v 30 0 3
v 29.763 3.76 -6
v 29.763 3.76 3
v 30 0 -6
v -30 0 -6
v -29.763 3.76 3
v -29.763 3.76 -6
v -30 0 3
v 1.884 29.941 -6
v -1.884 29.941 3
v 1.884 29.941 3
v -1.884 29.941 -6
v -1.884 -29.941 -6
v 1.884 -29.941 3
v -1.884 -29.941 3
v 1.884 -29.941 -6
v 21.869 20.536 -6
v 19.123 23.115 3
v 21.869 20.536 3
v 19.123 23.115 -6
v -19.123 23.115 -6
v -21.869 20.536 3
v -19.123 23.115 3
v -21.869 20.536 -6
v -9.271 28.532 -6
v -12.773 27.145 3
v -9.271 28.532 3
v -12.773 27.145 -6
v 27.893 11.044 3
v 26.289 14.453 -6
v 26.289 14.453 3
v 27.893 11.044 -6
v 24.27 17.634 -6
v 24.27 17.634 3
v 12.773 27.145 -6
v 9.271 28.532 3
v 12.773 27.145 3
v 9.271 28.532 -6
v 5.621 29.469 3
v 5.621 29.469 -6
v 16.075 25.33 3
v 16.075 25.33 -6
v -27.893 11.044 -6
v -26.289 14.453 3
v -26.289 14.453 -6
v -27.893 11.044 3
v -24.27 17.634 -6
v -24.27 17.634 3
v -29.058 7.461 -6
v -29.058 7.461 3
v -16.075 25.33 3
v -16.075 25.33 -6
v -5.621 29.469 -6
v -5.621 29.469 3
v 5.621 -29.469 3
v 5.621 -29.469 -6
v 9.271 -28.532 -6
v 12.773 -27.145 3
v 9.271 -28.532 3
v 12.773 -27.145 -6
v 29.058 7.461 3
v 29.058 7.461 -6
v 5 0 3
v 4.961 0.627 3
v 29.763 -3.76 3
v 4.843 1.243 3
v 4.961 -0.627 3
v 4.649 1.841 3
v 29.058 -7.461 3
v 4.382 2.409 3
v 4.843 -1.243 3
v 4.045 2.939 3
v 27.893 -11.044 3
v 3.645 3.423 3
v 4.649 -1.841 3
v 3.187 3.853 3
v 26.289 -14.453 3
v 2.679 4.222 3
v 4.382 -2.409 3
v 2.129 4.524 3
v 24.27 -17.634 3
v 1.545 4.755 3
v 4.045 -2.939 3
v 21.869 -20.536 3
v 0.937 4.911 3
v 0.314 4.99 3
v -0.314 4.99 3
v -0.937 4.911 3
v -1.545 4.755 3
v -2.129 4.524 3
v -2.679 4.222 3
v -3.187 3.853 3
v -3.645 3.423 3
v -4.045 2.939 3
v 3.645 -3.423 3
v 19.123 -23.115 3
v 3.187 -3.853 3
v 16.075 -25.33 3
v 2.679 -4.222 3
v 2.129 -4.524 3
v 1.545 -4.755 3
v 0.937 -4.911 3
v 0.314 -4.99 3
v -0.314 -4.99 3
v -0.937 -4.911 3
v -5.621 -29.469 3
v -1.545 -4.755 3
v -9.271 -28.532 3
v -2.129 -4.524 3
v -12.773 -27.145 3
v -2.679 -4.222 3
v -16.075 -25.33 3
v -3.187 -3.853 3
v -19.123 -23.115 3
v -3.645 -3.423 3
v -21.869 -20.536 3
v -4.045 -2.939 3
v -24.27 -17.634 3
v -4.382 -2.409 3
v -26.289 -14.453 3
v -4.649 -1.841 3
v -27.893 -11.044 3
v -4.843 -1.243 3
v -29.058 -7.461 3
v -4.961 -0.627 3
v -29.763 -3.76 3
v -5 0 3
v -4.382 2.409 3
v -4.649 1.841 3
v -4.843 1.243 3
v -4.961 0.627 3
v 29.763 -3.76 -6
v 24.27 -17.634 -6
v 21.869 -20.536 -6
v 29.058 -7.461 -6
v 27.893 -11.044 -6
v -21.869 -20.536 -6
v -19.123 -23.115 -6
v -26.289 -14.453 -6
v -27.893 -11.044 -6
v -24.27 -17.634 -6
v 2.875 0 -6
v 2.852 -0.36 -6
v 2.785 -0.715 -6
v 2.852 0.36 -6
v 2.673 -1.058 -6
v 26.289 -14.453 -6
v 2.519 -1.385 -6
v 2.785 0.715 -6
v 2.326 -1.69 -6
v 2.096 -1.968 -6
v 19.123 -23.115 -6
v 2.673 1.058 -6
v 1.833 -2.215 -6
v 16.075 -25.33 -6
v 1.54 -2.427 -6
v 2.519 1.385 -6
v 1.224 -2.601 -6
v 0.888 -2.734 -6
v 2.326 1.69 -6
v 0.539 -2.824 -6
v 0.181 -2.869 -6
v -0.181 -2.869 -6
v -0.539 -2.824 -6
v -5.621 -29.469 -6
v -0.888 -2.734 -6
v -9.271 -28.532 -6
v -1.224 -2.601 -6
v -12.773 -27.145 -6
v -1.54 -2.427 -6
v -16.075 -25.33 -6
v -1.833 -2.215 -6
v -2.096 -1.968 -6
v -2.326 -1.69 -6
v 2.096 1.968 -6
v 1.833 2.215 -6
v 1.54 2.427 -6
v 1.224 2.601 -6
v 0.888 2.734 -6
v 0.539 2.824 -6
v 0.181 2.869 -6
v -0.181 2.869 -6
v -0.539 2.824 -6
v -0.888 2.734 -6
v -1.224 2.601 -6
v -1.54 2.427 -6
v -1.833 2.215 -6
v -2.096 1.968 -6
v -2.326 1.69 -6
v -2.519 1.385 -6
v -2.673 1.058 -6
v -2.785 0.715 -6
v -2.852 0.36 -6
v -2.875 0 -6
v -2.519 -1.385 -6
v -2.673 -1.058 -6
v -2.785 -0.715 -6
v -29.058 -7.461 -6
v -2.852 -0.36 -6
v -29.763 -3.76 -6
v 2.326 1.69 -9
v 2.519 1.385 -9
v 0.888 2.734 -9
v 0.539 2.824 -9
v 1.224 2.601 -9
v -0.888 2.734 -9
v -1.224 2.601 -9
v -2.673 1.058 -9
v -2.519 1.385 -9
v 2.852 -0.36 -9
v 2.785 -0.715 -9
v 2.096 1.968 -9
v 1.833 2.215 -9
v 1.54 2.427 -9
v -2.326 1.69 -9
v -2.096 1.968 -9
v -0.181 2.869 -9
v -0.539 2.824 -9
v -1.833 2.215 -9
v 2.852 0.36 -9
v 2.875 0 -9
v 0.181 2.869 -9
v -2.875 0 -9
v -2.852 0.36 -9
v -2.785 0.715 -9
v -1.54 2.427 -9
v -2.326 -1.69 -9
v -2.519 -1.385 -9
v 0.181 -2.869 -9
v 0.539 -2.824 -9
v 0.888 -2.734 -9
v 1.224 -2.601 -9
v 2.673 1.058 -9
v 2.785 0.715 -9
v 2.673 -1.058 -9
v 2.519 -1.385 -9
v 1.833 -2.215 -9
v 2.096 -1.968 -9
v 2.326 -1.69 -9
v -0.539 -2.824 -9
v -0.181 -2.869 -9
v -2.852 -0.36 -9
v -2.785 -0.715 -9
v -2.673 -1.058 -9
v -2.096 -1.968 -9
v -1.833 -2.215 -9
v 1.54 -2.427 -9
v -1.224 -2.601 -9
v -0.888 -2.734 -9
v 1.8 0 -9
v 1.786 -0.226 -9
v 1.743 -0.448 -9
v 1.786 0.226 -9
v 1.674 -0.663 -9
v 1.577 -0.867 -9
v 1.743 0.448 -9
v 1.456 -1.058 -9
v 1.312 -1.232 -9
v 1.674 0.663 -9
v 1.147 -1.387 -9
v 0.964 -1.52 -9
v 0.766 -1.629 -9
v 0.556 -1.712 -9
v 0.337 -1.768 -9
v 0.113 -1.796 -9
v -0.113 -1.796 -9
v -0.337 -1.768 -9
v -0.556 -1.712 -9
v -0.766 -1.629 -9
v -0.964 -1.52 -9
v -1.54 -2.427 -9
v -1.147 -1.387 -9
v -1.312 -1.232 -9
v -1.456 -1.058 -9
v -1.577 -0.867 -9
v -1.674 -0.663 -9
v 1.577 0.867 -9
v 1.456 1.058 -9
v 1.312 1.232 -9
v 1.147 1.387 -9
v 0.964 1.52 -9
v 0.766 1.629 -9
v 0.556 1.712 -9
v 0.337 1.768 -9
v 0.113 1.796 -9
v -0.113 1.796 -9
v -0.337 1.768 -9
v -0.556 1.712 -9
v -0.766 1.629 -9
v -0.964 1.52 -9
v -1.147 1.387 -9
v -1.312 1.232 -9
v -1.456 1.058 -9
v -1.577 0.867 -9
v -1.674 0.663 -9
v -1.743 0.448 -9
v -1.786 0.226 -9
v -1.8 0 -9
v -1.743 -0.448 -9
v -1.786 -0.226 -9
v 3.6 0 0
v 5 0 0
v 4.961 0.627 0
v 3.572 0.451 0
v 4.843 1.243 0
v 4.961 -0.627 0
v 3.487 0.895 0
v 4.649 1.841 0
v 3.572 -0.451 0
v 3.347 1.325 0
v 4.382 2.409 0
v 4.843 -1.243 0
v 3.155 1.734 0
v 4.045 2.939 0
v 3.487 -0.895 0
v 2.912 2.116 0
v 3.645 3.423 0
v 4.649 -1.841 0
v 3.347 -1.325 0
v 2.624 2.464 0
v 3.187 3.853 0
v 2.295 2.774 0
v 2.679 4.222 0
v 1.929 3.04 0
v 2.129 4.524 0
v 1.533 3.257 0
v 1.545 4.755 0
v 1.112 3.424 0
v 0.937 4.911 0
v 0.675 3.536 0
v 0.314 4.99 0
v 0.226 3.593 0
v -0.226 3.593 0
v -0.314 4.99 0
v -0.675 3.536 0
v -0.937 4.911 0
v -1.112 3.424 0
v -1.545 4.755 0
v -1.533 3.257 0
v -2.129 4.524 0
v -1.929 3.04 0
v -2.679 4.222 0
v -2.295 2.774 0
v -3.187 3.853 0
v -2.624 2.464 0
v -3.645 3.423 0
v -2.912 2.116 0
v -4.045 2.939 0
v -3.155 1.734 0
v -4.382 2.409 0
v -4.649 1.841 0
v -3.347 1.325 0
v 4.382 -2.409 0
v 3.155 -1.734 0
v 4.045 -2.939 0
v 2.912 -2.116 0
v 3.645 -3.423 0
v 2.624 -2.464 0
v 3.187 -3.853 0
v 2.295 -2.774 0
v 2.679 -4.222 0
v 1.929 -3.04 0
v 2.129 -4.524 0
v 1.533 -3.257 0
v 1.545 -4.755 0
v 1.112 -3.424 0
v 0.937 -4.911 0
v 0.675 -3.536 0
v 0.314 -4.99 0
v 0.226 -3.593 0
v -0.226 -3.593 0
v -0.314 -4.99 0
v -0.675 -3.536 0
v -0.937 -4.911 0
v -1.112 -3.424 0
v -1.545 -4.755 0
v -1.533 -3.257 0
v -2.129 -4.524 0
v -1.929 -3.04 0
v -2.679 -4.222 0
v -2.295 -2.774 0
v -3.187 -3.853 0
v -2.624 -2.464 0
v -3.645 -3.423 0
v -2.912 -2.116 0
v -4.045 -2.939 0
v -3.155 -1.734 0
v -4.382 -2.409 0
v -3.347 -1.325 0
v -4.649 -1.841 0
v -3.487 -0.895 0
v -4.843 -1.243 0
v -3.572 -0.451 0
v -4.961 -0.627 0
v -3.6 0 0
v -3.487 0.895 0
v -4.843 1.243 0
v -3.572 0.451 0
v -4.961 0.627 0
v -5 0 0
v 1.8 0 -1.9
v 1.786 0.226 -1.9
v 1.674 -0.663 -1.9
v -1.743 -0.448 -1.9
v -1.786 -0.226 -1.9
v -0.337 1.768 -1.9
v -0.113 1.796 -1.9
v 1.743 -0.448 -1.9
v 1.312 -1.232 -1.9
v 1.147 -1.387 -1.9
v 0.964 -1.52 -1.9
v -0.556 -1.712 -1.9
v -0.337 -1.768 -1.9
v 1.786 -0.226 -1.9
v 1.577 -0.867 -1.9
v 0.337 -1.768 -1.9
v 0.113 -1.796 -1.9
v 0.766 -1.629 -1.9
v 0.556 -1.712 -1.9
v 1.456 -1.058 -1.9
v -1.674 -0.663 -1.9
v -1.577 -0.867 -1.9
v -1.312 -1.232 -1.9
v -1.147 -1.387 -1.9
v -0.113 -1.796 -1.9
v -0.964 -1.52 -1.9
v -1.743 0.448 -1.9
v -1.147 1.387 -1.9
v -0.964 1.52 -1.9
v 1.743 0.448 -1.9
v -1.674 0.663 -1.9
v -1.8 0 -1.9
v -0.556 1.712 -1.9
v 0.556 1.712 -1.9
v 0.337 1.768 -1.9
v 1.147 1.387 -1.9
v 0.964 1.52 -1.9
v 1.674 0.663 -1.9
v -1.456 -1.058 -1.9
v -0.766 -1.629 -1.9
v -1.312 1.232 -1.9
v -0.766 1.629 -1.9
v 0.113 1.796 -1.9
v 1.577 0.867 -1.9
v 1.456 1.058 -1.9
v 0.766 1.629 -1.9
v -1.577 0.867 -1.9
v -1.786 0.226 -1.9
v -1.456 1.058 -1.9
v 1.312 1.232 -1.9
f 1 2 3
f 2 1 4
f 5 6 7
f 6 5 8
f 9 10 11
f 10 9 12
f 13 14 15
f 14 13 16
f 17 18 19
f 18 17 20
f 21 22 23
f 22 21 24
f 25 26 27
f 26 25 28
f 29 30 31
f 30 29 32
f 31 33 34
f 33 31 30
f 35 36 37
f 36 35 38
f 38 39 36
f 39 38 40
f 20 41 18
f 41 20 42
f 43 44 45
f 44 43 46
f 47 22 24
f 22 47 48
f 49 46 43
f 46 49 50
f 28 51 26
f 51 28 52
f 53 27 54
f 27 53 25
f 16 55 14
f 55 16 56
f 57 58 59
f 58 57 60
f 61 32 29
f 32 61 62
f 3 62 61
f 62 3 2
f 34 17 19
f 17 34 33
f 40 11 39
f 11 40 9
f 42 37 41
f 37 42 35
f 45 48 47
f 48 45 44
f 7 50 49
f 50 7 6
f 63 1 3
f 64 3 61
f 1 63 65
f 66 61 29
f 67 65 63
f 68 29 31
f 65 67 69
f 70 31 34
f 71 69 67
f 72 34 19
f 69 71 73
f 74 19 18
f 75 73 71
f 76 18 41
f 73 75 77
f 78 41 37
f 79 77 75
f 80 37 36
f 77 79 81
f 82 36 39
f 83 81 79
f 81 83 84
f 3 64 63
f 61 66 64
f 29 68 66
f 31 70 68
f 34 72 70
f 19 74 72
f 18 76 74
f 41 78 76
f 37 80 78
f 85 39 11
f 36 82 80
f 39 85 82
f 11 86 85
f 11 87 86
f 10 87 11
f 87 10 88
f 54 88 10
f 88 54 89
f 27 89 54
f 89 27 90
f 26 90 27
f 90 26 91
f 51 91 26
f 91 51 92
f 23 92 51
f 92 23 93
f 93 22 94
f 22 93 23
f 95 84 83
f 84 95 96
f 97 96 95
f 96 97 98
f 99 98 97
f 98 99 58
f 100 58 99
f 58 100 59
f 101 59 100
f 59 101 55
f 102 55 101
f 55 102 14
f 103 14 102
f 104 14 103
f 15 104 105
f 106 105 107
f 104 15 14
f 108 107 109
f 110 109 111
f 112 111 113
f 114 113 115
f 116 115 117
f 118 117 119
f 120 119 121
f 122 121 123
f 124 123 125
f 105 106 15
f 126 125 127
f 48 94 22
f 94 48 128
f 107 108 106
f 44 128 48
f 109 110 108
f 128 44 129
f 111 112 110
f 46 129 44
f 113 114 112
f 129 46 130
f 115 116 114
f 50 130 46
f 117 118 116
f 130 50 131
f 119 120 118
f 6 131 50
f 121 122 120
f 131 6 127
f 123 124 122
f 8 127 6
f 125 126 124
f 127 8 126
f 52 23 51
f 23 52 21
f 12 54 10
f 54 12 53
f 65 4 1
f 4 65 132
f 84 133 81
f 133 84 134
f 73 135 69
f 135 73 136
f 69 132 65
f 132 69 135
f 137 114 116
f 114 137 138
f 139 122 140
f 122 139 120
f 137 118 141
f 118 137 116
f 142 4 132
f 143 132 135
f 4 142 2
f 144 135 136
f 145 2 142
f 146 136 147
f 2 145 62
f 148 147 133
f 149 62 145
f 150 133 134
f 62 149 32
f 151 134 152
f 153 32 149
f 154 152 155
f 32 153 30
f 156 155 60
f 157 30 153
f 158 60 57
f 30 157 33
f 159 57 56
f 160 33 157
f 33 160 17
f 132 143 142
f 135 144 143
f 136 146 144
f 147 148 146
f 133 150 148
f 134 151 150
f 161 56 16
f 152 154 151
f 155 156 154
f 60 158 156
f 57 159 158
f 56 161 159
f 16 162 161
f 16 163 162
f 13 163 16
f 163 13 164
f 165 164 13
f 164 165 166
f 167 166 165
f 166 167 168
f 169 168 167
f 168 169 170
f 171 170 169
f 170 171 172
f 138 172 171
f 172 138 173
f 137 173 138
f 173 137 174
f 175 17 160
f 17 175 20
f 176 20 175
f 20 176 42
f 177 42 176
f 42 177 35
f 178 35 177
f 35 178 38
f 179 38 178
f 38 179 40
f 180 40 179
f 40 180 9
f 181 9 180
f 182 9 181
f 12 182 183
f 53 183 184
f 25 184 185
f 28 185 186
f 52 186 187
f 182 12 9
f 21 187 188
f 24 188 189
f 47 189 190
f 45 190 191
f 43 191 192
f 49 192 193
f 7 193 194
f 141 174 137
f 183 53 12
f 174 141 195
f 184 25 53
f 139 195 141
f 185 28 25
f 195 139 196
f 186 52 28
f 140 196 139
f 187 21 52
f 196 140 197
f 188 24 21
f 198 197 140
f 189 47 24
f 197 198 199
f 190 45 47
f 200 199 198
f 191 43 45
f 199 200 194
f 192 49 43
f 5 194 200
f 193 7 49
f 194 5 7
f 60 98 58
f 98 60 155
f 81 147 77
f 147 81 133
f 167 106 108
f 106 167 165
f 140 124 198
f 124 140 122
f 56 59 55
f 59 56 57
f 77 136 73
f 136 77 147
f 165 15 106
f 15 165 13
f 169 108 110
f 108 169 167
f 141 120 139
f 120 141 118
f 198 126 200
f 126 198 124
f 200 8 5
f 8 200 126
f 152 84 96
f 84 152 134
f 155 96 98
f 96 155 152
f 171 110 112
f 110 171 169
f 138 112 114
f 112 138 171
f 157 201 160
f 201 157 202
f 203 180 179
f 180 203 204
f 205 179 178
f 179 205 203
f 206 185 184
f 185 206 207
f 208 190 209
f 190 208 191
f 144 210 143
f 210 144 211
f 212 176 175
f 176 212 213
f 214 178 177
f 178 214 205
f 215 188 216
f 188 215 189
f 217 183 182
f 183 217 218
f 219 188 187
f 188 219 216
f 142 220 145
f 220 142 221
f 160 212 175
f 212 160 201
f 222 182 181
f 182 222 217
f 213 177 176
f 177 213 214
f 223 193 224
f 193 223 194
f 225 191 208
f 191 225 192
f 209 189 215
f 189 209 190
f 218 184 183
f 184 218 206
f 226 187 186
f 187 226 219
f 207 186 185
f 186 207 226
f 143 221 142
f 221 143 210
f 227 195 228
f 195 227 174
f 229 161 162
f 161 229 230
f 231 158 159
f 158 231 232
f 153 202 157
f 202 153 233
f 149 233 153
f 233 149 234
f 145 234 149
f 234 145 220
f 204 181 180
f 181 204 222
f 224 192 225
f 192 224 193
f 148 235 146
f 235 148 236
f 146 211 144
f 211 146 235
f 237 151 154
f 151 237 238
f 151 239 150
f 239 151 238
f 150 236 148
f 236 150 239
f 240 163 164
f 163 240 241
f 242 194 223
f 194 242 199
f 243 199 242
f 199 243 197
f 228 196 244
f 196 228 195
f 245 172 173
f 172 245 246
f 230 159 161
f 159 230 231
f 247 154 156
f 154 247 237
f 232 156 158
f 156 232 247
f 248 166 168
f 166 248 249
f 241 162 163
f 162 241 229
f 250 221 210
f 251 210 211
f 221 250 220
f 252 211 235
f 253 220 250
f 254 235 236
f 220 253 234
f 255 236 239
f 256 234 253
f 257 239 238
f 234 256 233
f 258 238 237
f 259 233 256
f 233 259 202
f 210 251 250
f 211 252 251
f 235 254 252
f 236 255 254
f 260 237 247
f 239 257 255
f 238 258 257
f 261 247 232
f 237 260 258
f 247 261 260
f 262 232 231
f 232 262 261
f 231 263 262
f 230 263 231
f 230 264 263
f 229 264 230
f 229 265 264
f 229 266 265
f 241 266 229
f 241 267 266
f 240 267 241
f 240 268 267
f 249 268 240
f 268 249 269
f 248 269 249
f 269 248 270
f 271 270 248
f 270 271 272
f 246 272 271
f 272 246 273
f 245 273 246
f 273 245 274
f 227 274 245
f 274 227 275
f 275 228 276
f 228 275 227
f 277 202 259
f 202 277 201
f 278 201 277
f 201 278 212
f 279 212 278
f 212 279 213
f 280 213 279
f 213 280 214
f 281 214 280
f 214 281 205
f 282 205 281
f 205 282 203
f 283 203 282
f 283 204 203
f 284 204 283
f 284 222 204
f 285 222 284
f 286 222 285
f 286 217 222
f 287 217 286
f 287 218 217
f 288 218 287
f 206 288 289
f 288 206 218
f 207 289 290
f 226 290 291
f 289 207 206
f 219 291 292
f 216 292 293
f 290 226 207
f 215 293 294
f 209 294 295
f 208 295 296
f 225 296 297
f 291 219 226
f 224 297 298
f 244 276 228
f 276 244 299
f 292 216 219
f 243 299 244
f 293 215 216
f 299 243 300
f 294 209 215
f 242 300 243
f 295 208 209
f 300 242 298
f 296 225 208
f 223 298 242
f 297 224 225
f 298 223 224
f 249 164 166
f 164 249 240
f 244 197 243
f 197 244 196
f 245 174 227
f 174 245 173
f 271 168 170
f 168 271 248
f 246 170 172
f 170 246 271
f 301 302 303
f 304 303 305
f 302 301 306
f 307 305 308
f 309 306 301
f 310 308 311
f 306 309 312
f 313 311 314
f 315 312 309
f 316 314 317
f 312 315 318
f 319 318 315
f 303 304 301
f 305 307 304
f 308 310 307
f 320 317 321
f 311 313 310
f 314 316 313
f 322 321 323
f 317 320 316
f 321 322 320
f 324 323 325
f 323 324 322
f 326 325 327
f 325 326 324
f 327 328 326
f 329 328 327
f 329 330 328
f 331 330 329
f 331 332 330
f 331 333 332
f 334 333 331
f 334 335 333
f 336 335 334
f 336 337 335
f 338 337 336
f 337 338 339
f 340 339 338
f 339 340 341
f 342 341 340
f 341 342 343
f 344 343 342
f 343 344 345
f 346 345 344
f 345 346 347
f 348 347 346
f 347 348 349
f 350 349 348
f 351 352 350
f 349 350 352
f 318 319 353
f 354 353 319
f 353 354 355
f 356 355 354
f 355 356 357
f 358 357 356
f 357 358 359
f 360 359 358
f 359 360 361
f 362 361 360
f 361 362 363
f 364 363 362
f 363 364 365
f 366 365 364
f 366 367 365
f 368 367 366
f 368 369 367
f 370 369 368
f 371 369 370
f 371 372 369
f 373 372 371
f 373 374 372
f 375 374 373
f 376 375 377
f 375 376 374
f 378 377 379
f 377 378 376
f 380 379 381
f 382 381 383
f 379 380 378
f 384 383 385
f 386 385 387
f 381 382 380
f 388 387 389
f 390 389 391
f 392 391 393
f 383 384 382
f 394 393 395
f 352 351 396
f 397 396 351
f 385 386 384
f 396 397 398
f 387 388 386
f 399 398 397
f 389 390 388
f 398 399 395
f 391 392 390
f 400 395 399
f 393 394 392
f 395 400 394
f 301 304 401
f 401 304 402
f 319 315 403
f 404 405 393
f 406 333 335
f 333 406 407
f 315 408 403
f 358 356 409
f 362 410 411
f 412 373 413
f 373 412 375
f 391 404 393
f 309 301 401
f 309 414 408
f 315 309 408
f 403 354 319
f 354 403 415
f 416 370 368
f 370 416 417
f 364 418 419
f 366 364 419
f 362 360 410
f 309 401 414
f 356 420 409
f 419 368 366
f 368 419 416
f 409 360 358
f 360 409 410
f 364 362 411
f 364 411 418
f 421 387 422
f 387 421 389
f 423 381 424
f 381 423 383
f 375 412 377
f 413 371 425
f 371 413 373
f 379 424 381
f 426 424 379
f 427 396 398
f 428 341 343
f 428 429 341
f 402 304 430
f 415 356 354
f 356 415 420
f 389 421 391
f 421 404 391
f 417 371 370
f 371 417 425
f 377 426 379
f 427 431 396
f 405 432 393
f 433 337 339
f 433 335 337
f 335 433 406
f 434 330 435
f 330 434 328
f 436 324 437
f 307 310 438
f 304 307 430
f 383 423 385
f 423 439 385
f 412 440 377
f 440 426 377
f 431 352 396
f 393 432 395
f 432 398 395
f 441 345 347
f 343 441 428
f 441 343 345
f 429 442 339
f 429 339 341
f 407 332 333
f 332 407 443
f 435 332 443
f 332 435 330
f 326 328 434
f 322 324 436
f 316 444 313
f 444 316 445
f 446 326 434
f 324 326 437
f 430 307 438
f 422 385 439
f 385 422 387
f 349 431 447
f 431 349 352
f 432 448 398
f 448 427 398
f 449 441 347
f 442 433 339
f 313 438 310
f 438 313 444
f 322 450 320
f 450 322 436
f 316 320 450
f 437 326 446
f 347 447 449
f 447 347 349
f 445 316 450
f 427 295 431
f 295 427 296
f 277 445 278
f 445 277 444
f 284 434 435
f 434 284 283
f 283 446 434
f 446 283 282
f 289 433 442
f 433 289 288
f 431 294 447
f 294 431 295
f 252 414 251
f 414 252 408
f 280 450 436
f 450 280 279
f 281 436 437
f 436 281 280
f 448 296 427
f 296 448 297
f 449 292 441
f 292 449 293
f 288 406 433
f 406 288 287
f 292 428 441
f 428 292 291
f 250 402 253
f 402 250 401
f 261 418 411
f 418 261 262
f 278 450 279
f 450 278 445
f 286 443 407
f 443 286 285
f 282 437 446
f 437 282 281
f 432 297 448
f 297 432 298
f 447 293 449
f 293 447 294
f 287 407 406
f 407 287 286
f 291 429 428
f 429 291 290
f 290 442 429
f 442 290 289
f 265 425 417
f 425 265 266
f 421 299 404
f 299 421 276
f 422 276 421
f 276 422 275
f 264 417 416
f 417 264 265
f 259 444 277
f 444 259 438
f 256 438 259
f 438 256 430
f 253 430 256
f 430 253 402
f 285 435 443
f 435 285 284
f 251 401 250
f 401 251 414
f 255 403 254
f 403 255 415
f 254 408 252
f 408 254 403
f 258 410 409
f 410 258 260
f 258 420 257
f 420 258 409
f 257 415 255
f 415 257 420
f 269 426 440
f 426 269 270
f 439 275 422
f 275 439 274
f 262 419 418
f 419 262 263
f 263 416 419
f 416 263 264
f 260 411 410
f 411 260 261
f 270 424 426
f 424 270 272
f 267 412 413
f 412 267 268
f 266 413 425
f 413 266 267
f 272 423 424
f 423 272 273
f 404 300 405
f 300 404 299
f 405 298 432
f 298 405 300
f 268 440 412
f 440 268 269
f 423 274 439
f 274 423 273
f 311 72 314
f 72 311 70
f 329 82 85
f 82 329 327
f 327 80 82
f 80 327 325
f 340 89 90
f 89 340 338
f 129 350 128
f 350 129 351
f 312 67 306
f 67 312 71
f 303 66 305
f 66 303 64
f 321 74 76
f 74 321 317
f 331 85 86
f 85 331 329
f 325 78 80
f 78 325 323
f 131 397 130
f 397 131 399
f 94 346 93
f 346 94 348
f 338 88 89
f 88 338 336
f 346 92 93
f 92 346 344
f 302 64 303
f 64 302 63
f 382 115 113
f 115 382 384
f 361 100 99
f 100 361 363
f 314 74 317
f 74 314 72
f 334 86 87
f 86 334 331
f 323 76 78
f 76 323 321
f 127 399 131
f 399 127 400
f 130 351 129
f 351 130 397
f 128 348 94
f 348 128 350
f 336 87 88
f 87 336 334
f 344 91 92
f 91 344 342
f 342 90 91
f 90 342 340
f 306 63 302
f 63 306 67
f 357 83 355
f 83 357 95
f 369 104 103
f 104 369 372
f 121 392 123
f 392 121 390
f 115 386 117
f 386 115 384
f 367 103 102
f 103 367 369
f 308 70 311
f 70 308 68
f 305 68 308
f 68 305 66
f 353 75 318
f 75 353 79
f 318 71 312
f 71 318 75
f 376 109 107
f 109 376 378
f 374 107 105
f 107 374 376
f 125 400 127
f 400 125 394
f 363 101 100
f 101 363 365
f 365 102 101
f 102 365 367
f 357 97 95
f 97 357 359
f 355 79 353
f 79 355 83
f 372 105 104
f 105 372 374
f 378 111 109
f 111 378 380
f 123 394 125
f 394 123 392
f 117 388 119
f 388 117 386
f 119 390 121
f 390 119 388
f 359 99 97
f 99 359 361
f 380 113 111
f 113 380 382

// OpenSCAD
$fn = 50;


difference() {
	union() {
		translate(v = [0, 0, -6.0000000000]) {
			cylinder(h = 9, r = 30.0000000000);
		}
		#translate(v = [0, 0, -9.0000000000]) {
			cylinder(h = 9, r = 2.8750000000);
		}
	}
	union() {
		translate(v = [0, 0, 0]) {
			rotate(a = [0, 0, 0]) {
				difference() {
					union() {
						translate(v = [0, 0, -9.0000000000]) {
							cylinder(h = 9, r = 1.5000000000);
						}
						translate(v = [0, 0, -1.9000000000]) {
							cylinder(h = 1.9000000000, r1 = 1.8000000000, r2 = 3.6000000000);
						}
						translate(v = [0, 0, -9.0000000000]) {
							cylinder(h = 9, r = 1.8000000000);
						}
						translate(v = [0, 0, -9.0000000000]) {
							cylinder(h = 9, r = 1.5000000000);
						}
					}
					union();
				}
			}
		}
		#cylinder(h = 3, r = 5.0000000000);
	}
}
